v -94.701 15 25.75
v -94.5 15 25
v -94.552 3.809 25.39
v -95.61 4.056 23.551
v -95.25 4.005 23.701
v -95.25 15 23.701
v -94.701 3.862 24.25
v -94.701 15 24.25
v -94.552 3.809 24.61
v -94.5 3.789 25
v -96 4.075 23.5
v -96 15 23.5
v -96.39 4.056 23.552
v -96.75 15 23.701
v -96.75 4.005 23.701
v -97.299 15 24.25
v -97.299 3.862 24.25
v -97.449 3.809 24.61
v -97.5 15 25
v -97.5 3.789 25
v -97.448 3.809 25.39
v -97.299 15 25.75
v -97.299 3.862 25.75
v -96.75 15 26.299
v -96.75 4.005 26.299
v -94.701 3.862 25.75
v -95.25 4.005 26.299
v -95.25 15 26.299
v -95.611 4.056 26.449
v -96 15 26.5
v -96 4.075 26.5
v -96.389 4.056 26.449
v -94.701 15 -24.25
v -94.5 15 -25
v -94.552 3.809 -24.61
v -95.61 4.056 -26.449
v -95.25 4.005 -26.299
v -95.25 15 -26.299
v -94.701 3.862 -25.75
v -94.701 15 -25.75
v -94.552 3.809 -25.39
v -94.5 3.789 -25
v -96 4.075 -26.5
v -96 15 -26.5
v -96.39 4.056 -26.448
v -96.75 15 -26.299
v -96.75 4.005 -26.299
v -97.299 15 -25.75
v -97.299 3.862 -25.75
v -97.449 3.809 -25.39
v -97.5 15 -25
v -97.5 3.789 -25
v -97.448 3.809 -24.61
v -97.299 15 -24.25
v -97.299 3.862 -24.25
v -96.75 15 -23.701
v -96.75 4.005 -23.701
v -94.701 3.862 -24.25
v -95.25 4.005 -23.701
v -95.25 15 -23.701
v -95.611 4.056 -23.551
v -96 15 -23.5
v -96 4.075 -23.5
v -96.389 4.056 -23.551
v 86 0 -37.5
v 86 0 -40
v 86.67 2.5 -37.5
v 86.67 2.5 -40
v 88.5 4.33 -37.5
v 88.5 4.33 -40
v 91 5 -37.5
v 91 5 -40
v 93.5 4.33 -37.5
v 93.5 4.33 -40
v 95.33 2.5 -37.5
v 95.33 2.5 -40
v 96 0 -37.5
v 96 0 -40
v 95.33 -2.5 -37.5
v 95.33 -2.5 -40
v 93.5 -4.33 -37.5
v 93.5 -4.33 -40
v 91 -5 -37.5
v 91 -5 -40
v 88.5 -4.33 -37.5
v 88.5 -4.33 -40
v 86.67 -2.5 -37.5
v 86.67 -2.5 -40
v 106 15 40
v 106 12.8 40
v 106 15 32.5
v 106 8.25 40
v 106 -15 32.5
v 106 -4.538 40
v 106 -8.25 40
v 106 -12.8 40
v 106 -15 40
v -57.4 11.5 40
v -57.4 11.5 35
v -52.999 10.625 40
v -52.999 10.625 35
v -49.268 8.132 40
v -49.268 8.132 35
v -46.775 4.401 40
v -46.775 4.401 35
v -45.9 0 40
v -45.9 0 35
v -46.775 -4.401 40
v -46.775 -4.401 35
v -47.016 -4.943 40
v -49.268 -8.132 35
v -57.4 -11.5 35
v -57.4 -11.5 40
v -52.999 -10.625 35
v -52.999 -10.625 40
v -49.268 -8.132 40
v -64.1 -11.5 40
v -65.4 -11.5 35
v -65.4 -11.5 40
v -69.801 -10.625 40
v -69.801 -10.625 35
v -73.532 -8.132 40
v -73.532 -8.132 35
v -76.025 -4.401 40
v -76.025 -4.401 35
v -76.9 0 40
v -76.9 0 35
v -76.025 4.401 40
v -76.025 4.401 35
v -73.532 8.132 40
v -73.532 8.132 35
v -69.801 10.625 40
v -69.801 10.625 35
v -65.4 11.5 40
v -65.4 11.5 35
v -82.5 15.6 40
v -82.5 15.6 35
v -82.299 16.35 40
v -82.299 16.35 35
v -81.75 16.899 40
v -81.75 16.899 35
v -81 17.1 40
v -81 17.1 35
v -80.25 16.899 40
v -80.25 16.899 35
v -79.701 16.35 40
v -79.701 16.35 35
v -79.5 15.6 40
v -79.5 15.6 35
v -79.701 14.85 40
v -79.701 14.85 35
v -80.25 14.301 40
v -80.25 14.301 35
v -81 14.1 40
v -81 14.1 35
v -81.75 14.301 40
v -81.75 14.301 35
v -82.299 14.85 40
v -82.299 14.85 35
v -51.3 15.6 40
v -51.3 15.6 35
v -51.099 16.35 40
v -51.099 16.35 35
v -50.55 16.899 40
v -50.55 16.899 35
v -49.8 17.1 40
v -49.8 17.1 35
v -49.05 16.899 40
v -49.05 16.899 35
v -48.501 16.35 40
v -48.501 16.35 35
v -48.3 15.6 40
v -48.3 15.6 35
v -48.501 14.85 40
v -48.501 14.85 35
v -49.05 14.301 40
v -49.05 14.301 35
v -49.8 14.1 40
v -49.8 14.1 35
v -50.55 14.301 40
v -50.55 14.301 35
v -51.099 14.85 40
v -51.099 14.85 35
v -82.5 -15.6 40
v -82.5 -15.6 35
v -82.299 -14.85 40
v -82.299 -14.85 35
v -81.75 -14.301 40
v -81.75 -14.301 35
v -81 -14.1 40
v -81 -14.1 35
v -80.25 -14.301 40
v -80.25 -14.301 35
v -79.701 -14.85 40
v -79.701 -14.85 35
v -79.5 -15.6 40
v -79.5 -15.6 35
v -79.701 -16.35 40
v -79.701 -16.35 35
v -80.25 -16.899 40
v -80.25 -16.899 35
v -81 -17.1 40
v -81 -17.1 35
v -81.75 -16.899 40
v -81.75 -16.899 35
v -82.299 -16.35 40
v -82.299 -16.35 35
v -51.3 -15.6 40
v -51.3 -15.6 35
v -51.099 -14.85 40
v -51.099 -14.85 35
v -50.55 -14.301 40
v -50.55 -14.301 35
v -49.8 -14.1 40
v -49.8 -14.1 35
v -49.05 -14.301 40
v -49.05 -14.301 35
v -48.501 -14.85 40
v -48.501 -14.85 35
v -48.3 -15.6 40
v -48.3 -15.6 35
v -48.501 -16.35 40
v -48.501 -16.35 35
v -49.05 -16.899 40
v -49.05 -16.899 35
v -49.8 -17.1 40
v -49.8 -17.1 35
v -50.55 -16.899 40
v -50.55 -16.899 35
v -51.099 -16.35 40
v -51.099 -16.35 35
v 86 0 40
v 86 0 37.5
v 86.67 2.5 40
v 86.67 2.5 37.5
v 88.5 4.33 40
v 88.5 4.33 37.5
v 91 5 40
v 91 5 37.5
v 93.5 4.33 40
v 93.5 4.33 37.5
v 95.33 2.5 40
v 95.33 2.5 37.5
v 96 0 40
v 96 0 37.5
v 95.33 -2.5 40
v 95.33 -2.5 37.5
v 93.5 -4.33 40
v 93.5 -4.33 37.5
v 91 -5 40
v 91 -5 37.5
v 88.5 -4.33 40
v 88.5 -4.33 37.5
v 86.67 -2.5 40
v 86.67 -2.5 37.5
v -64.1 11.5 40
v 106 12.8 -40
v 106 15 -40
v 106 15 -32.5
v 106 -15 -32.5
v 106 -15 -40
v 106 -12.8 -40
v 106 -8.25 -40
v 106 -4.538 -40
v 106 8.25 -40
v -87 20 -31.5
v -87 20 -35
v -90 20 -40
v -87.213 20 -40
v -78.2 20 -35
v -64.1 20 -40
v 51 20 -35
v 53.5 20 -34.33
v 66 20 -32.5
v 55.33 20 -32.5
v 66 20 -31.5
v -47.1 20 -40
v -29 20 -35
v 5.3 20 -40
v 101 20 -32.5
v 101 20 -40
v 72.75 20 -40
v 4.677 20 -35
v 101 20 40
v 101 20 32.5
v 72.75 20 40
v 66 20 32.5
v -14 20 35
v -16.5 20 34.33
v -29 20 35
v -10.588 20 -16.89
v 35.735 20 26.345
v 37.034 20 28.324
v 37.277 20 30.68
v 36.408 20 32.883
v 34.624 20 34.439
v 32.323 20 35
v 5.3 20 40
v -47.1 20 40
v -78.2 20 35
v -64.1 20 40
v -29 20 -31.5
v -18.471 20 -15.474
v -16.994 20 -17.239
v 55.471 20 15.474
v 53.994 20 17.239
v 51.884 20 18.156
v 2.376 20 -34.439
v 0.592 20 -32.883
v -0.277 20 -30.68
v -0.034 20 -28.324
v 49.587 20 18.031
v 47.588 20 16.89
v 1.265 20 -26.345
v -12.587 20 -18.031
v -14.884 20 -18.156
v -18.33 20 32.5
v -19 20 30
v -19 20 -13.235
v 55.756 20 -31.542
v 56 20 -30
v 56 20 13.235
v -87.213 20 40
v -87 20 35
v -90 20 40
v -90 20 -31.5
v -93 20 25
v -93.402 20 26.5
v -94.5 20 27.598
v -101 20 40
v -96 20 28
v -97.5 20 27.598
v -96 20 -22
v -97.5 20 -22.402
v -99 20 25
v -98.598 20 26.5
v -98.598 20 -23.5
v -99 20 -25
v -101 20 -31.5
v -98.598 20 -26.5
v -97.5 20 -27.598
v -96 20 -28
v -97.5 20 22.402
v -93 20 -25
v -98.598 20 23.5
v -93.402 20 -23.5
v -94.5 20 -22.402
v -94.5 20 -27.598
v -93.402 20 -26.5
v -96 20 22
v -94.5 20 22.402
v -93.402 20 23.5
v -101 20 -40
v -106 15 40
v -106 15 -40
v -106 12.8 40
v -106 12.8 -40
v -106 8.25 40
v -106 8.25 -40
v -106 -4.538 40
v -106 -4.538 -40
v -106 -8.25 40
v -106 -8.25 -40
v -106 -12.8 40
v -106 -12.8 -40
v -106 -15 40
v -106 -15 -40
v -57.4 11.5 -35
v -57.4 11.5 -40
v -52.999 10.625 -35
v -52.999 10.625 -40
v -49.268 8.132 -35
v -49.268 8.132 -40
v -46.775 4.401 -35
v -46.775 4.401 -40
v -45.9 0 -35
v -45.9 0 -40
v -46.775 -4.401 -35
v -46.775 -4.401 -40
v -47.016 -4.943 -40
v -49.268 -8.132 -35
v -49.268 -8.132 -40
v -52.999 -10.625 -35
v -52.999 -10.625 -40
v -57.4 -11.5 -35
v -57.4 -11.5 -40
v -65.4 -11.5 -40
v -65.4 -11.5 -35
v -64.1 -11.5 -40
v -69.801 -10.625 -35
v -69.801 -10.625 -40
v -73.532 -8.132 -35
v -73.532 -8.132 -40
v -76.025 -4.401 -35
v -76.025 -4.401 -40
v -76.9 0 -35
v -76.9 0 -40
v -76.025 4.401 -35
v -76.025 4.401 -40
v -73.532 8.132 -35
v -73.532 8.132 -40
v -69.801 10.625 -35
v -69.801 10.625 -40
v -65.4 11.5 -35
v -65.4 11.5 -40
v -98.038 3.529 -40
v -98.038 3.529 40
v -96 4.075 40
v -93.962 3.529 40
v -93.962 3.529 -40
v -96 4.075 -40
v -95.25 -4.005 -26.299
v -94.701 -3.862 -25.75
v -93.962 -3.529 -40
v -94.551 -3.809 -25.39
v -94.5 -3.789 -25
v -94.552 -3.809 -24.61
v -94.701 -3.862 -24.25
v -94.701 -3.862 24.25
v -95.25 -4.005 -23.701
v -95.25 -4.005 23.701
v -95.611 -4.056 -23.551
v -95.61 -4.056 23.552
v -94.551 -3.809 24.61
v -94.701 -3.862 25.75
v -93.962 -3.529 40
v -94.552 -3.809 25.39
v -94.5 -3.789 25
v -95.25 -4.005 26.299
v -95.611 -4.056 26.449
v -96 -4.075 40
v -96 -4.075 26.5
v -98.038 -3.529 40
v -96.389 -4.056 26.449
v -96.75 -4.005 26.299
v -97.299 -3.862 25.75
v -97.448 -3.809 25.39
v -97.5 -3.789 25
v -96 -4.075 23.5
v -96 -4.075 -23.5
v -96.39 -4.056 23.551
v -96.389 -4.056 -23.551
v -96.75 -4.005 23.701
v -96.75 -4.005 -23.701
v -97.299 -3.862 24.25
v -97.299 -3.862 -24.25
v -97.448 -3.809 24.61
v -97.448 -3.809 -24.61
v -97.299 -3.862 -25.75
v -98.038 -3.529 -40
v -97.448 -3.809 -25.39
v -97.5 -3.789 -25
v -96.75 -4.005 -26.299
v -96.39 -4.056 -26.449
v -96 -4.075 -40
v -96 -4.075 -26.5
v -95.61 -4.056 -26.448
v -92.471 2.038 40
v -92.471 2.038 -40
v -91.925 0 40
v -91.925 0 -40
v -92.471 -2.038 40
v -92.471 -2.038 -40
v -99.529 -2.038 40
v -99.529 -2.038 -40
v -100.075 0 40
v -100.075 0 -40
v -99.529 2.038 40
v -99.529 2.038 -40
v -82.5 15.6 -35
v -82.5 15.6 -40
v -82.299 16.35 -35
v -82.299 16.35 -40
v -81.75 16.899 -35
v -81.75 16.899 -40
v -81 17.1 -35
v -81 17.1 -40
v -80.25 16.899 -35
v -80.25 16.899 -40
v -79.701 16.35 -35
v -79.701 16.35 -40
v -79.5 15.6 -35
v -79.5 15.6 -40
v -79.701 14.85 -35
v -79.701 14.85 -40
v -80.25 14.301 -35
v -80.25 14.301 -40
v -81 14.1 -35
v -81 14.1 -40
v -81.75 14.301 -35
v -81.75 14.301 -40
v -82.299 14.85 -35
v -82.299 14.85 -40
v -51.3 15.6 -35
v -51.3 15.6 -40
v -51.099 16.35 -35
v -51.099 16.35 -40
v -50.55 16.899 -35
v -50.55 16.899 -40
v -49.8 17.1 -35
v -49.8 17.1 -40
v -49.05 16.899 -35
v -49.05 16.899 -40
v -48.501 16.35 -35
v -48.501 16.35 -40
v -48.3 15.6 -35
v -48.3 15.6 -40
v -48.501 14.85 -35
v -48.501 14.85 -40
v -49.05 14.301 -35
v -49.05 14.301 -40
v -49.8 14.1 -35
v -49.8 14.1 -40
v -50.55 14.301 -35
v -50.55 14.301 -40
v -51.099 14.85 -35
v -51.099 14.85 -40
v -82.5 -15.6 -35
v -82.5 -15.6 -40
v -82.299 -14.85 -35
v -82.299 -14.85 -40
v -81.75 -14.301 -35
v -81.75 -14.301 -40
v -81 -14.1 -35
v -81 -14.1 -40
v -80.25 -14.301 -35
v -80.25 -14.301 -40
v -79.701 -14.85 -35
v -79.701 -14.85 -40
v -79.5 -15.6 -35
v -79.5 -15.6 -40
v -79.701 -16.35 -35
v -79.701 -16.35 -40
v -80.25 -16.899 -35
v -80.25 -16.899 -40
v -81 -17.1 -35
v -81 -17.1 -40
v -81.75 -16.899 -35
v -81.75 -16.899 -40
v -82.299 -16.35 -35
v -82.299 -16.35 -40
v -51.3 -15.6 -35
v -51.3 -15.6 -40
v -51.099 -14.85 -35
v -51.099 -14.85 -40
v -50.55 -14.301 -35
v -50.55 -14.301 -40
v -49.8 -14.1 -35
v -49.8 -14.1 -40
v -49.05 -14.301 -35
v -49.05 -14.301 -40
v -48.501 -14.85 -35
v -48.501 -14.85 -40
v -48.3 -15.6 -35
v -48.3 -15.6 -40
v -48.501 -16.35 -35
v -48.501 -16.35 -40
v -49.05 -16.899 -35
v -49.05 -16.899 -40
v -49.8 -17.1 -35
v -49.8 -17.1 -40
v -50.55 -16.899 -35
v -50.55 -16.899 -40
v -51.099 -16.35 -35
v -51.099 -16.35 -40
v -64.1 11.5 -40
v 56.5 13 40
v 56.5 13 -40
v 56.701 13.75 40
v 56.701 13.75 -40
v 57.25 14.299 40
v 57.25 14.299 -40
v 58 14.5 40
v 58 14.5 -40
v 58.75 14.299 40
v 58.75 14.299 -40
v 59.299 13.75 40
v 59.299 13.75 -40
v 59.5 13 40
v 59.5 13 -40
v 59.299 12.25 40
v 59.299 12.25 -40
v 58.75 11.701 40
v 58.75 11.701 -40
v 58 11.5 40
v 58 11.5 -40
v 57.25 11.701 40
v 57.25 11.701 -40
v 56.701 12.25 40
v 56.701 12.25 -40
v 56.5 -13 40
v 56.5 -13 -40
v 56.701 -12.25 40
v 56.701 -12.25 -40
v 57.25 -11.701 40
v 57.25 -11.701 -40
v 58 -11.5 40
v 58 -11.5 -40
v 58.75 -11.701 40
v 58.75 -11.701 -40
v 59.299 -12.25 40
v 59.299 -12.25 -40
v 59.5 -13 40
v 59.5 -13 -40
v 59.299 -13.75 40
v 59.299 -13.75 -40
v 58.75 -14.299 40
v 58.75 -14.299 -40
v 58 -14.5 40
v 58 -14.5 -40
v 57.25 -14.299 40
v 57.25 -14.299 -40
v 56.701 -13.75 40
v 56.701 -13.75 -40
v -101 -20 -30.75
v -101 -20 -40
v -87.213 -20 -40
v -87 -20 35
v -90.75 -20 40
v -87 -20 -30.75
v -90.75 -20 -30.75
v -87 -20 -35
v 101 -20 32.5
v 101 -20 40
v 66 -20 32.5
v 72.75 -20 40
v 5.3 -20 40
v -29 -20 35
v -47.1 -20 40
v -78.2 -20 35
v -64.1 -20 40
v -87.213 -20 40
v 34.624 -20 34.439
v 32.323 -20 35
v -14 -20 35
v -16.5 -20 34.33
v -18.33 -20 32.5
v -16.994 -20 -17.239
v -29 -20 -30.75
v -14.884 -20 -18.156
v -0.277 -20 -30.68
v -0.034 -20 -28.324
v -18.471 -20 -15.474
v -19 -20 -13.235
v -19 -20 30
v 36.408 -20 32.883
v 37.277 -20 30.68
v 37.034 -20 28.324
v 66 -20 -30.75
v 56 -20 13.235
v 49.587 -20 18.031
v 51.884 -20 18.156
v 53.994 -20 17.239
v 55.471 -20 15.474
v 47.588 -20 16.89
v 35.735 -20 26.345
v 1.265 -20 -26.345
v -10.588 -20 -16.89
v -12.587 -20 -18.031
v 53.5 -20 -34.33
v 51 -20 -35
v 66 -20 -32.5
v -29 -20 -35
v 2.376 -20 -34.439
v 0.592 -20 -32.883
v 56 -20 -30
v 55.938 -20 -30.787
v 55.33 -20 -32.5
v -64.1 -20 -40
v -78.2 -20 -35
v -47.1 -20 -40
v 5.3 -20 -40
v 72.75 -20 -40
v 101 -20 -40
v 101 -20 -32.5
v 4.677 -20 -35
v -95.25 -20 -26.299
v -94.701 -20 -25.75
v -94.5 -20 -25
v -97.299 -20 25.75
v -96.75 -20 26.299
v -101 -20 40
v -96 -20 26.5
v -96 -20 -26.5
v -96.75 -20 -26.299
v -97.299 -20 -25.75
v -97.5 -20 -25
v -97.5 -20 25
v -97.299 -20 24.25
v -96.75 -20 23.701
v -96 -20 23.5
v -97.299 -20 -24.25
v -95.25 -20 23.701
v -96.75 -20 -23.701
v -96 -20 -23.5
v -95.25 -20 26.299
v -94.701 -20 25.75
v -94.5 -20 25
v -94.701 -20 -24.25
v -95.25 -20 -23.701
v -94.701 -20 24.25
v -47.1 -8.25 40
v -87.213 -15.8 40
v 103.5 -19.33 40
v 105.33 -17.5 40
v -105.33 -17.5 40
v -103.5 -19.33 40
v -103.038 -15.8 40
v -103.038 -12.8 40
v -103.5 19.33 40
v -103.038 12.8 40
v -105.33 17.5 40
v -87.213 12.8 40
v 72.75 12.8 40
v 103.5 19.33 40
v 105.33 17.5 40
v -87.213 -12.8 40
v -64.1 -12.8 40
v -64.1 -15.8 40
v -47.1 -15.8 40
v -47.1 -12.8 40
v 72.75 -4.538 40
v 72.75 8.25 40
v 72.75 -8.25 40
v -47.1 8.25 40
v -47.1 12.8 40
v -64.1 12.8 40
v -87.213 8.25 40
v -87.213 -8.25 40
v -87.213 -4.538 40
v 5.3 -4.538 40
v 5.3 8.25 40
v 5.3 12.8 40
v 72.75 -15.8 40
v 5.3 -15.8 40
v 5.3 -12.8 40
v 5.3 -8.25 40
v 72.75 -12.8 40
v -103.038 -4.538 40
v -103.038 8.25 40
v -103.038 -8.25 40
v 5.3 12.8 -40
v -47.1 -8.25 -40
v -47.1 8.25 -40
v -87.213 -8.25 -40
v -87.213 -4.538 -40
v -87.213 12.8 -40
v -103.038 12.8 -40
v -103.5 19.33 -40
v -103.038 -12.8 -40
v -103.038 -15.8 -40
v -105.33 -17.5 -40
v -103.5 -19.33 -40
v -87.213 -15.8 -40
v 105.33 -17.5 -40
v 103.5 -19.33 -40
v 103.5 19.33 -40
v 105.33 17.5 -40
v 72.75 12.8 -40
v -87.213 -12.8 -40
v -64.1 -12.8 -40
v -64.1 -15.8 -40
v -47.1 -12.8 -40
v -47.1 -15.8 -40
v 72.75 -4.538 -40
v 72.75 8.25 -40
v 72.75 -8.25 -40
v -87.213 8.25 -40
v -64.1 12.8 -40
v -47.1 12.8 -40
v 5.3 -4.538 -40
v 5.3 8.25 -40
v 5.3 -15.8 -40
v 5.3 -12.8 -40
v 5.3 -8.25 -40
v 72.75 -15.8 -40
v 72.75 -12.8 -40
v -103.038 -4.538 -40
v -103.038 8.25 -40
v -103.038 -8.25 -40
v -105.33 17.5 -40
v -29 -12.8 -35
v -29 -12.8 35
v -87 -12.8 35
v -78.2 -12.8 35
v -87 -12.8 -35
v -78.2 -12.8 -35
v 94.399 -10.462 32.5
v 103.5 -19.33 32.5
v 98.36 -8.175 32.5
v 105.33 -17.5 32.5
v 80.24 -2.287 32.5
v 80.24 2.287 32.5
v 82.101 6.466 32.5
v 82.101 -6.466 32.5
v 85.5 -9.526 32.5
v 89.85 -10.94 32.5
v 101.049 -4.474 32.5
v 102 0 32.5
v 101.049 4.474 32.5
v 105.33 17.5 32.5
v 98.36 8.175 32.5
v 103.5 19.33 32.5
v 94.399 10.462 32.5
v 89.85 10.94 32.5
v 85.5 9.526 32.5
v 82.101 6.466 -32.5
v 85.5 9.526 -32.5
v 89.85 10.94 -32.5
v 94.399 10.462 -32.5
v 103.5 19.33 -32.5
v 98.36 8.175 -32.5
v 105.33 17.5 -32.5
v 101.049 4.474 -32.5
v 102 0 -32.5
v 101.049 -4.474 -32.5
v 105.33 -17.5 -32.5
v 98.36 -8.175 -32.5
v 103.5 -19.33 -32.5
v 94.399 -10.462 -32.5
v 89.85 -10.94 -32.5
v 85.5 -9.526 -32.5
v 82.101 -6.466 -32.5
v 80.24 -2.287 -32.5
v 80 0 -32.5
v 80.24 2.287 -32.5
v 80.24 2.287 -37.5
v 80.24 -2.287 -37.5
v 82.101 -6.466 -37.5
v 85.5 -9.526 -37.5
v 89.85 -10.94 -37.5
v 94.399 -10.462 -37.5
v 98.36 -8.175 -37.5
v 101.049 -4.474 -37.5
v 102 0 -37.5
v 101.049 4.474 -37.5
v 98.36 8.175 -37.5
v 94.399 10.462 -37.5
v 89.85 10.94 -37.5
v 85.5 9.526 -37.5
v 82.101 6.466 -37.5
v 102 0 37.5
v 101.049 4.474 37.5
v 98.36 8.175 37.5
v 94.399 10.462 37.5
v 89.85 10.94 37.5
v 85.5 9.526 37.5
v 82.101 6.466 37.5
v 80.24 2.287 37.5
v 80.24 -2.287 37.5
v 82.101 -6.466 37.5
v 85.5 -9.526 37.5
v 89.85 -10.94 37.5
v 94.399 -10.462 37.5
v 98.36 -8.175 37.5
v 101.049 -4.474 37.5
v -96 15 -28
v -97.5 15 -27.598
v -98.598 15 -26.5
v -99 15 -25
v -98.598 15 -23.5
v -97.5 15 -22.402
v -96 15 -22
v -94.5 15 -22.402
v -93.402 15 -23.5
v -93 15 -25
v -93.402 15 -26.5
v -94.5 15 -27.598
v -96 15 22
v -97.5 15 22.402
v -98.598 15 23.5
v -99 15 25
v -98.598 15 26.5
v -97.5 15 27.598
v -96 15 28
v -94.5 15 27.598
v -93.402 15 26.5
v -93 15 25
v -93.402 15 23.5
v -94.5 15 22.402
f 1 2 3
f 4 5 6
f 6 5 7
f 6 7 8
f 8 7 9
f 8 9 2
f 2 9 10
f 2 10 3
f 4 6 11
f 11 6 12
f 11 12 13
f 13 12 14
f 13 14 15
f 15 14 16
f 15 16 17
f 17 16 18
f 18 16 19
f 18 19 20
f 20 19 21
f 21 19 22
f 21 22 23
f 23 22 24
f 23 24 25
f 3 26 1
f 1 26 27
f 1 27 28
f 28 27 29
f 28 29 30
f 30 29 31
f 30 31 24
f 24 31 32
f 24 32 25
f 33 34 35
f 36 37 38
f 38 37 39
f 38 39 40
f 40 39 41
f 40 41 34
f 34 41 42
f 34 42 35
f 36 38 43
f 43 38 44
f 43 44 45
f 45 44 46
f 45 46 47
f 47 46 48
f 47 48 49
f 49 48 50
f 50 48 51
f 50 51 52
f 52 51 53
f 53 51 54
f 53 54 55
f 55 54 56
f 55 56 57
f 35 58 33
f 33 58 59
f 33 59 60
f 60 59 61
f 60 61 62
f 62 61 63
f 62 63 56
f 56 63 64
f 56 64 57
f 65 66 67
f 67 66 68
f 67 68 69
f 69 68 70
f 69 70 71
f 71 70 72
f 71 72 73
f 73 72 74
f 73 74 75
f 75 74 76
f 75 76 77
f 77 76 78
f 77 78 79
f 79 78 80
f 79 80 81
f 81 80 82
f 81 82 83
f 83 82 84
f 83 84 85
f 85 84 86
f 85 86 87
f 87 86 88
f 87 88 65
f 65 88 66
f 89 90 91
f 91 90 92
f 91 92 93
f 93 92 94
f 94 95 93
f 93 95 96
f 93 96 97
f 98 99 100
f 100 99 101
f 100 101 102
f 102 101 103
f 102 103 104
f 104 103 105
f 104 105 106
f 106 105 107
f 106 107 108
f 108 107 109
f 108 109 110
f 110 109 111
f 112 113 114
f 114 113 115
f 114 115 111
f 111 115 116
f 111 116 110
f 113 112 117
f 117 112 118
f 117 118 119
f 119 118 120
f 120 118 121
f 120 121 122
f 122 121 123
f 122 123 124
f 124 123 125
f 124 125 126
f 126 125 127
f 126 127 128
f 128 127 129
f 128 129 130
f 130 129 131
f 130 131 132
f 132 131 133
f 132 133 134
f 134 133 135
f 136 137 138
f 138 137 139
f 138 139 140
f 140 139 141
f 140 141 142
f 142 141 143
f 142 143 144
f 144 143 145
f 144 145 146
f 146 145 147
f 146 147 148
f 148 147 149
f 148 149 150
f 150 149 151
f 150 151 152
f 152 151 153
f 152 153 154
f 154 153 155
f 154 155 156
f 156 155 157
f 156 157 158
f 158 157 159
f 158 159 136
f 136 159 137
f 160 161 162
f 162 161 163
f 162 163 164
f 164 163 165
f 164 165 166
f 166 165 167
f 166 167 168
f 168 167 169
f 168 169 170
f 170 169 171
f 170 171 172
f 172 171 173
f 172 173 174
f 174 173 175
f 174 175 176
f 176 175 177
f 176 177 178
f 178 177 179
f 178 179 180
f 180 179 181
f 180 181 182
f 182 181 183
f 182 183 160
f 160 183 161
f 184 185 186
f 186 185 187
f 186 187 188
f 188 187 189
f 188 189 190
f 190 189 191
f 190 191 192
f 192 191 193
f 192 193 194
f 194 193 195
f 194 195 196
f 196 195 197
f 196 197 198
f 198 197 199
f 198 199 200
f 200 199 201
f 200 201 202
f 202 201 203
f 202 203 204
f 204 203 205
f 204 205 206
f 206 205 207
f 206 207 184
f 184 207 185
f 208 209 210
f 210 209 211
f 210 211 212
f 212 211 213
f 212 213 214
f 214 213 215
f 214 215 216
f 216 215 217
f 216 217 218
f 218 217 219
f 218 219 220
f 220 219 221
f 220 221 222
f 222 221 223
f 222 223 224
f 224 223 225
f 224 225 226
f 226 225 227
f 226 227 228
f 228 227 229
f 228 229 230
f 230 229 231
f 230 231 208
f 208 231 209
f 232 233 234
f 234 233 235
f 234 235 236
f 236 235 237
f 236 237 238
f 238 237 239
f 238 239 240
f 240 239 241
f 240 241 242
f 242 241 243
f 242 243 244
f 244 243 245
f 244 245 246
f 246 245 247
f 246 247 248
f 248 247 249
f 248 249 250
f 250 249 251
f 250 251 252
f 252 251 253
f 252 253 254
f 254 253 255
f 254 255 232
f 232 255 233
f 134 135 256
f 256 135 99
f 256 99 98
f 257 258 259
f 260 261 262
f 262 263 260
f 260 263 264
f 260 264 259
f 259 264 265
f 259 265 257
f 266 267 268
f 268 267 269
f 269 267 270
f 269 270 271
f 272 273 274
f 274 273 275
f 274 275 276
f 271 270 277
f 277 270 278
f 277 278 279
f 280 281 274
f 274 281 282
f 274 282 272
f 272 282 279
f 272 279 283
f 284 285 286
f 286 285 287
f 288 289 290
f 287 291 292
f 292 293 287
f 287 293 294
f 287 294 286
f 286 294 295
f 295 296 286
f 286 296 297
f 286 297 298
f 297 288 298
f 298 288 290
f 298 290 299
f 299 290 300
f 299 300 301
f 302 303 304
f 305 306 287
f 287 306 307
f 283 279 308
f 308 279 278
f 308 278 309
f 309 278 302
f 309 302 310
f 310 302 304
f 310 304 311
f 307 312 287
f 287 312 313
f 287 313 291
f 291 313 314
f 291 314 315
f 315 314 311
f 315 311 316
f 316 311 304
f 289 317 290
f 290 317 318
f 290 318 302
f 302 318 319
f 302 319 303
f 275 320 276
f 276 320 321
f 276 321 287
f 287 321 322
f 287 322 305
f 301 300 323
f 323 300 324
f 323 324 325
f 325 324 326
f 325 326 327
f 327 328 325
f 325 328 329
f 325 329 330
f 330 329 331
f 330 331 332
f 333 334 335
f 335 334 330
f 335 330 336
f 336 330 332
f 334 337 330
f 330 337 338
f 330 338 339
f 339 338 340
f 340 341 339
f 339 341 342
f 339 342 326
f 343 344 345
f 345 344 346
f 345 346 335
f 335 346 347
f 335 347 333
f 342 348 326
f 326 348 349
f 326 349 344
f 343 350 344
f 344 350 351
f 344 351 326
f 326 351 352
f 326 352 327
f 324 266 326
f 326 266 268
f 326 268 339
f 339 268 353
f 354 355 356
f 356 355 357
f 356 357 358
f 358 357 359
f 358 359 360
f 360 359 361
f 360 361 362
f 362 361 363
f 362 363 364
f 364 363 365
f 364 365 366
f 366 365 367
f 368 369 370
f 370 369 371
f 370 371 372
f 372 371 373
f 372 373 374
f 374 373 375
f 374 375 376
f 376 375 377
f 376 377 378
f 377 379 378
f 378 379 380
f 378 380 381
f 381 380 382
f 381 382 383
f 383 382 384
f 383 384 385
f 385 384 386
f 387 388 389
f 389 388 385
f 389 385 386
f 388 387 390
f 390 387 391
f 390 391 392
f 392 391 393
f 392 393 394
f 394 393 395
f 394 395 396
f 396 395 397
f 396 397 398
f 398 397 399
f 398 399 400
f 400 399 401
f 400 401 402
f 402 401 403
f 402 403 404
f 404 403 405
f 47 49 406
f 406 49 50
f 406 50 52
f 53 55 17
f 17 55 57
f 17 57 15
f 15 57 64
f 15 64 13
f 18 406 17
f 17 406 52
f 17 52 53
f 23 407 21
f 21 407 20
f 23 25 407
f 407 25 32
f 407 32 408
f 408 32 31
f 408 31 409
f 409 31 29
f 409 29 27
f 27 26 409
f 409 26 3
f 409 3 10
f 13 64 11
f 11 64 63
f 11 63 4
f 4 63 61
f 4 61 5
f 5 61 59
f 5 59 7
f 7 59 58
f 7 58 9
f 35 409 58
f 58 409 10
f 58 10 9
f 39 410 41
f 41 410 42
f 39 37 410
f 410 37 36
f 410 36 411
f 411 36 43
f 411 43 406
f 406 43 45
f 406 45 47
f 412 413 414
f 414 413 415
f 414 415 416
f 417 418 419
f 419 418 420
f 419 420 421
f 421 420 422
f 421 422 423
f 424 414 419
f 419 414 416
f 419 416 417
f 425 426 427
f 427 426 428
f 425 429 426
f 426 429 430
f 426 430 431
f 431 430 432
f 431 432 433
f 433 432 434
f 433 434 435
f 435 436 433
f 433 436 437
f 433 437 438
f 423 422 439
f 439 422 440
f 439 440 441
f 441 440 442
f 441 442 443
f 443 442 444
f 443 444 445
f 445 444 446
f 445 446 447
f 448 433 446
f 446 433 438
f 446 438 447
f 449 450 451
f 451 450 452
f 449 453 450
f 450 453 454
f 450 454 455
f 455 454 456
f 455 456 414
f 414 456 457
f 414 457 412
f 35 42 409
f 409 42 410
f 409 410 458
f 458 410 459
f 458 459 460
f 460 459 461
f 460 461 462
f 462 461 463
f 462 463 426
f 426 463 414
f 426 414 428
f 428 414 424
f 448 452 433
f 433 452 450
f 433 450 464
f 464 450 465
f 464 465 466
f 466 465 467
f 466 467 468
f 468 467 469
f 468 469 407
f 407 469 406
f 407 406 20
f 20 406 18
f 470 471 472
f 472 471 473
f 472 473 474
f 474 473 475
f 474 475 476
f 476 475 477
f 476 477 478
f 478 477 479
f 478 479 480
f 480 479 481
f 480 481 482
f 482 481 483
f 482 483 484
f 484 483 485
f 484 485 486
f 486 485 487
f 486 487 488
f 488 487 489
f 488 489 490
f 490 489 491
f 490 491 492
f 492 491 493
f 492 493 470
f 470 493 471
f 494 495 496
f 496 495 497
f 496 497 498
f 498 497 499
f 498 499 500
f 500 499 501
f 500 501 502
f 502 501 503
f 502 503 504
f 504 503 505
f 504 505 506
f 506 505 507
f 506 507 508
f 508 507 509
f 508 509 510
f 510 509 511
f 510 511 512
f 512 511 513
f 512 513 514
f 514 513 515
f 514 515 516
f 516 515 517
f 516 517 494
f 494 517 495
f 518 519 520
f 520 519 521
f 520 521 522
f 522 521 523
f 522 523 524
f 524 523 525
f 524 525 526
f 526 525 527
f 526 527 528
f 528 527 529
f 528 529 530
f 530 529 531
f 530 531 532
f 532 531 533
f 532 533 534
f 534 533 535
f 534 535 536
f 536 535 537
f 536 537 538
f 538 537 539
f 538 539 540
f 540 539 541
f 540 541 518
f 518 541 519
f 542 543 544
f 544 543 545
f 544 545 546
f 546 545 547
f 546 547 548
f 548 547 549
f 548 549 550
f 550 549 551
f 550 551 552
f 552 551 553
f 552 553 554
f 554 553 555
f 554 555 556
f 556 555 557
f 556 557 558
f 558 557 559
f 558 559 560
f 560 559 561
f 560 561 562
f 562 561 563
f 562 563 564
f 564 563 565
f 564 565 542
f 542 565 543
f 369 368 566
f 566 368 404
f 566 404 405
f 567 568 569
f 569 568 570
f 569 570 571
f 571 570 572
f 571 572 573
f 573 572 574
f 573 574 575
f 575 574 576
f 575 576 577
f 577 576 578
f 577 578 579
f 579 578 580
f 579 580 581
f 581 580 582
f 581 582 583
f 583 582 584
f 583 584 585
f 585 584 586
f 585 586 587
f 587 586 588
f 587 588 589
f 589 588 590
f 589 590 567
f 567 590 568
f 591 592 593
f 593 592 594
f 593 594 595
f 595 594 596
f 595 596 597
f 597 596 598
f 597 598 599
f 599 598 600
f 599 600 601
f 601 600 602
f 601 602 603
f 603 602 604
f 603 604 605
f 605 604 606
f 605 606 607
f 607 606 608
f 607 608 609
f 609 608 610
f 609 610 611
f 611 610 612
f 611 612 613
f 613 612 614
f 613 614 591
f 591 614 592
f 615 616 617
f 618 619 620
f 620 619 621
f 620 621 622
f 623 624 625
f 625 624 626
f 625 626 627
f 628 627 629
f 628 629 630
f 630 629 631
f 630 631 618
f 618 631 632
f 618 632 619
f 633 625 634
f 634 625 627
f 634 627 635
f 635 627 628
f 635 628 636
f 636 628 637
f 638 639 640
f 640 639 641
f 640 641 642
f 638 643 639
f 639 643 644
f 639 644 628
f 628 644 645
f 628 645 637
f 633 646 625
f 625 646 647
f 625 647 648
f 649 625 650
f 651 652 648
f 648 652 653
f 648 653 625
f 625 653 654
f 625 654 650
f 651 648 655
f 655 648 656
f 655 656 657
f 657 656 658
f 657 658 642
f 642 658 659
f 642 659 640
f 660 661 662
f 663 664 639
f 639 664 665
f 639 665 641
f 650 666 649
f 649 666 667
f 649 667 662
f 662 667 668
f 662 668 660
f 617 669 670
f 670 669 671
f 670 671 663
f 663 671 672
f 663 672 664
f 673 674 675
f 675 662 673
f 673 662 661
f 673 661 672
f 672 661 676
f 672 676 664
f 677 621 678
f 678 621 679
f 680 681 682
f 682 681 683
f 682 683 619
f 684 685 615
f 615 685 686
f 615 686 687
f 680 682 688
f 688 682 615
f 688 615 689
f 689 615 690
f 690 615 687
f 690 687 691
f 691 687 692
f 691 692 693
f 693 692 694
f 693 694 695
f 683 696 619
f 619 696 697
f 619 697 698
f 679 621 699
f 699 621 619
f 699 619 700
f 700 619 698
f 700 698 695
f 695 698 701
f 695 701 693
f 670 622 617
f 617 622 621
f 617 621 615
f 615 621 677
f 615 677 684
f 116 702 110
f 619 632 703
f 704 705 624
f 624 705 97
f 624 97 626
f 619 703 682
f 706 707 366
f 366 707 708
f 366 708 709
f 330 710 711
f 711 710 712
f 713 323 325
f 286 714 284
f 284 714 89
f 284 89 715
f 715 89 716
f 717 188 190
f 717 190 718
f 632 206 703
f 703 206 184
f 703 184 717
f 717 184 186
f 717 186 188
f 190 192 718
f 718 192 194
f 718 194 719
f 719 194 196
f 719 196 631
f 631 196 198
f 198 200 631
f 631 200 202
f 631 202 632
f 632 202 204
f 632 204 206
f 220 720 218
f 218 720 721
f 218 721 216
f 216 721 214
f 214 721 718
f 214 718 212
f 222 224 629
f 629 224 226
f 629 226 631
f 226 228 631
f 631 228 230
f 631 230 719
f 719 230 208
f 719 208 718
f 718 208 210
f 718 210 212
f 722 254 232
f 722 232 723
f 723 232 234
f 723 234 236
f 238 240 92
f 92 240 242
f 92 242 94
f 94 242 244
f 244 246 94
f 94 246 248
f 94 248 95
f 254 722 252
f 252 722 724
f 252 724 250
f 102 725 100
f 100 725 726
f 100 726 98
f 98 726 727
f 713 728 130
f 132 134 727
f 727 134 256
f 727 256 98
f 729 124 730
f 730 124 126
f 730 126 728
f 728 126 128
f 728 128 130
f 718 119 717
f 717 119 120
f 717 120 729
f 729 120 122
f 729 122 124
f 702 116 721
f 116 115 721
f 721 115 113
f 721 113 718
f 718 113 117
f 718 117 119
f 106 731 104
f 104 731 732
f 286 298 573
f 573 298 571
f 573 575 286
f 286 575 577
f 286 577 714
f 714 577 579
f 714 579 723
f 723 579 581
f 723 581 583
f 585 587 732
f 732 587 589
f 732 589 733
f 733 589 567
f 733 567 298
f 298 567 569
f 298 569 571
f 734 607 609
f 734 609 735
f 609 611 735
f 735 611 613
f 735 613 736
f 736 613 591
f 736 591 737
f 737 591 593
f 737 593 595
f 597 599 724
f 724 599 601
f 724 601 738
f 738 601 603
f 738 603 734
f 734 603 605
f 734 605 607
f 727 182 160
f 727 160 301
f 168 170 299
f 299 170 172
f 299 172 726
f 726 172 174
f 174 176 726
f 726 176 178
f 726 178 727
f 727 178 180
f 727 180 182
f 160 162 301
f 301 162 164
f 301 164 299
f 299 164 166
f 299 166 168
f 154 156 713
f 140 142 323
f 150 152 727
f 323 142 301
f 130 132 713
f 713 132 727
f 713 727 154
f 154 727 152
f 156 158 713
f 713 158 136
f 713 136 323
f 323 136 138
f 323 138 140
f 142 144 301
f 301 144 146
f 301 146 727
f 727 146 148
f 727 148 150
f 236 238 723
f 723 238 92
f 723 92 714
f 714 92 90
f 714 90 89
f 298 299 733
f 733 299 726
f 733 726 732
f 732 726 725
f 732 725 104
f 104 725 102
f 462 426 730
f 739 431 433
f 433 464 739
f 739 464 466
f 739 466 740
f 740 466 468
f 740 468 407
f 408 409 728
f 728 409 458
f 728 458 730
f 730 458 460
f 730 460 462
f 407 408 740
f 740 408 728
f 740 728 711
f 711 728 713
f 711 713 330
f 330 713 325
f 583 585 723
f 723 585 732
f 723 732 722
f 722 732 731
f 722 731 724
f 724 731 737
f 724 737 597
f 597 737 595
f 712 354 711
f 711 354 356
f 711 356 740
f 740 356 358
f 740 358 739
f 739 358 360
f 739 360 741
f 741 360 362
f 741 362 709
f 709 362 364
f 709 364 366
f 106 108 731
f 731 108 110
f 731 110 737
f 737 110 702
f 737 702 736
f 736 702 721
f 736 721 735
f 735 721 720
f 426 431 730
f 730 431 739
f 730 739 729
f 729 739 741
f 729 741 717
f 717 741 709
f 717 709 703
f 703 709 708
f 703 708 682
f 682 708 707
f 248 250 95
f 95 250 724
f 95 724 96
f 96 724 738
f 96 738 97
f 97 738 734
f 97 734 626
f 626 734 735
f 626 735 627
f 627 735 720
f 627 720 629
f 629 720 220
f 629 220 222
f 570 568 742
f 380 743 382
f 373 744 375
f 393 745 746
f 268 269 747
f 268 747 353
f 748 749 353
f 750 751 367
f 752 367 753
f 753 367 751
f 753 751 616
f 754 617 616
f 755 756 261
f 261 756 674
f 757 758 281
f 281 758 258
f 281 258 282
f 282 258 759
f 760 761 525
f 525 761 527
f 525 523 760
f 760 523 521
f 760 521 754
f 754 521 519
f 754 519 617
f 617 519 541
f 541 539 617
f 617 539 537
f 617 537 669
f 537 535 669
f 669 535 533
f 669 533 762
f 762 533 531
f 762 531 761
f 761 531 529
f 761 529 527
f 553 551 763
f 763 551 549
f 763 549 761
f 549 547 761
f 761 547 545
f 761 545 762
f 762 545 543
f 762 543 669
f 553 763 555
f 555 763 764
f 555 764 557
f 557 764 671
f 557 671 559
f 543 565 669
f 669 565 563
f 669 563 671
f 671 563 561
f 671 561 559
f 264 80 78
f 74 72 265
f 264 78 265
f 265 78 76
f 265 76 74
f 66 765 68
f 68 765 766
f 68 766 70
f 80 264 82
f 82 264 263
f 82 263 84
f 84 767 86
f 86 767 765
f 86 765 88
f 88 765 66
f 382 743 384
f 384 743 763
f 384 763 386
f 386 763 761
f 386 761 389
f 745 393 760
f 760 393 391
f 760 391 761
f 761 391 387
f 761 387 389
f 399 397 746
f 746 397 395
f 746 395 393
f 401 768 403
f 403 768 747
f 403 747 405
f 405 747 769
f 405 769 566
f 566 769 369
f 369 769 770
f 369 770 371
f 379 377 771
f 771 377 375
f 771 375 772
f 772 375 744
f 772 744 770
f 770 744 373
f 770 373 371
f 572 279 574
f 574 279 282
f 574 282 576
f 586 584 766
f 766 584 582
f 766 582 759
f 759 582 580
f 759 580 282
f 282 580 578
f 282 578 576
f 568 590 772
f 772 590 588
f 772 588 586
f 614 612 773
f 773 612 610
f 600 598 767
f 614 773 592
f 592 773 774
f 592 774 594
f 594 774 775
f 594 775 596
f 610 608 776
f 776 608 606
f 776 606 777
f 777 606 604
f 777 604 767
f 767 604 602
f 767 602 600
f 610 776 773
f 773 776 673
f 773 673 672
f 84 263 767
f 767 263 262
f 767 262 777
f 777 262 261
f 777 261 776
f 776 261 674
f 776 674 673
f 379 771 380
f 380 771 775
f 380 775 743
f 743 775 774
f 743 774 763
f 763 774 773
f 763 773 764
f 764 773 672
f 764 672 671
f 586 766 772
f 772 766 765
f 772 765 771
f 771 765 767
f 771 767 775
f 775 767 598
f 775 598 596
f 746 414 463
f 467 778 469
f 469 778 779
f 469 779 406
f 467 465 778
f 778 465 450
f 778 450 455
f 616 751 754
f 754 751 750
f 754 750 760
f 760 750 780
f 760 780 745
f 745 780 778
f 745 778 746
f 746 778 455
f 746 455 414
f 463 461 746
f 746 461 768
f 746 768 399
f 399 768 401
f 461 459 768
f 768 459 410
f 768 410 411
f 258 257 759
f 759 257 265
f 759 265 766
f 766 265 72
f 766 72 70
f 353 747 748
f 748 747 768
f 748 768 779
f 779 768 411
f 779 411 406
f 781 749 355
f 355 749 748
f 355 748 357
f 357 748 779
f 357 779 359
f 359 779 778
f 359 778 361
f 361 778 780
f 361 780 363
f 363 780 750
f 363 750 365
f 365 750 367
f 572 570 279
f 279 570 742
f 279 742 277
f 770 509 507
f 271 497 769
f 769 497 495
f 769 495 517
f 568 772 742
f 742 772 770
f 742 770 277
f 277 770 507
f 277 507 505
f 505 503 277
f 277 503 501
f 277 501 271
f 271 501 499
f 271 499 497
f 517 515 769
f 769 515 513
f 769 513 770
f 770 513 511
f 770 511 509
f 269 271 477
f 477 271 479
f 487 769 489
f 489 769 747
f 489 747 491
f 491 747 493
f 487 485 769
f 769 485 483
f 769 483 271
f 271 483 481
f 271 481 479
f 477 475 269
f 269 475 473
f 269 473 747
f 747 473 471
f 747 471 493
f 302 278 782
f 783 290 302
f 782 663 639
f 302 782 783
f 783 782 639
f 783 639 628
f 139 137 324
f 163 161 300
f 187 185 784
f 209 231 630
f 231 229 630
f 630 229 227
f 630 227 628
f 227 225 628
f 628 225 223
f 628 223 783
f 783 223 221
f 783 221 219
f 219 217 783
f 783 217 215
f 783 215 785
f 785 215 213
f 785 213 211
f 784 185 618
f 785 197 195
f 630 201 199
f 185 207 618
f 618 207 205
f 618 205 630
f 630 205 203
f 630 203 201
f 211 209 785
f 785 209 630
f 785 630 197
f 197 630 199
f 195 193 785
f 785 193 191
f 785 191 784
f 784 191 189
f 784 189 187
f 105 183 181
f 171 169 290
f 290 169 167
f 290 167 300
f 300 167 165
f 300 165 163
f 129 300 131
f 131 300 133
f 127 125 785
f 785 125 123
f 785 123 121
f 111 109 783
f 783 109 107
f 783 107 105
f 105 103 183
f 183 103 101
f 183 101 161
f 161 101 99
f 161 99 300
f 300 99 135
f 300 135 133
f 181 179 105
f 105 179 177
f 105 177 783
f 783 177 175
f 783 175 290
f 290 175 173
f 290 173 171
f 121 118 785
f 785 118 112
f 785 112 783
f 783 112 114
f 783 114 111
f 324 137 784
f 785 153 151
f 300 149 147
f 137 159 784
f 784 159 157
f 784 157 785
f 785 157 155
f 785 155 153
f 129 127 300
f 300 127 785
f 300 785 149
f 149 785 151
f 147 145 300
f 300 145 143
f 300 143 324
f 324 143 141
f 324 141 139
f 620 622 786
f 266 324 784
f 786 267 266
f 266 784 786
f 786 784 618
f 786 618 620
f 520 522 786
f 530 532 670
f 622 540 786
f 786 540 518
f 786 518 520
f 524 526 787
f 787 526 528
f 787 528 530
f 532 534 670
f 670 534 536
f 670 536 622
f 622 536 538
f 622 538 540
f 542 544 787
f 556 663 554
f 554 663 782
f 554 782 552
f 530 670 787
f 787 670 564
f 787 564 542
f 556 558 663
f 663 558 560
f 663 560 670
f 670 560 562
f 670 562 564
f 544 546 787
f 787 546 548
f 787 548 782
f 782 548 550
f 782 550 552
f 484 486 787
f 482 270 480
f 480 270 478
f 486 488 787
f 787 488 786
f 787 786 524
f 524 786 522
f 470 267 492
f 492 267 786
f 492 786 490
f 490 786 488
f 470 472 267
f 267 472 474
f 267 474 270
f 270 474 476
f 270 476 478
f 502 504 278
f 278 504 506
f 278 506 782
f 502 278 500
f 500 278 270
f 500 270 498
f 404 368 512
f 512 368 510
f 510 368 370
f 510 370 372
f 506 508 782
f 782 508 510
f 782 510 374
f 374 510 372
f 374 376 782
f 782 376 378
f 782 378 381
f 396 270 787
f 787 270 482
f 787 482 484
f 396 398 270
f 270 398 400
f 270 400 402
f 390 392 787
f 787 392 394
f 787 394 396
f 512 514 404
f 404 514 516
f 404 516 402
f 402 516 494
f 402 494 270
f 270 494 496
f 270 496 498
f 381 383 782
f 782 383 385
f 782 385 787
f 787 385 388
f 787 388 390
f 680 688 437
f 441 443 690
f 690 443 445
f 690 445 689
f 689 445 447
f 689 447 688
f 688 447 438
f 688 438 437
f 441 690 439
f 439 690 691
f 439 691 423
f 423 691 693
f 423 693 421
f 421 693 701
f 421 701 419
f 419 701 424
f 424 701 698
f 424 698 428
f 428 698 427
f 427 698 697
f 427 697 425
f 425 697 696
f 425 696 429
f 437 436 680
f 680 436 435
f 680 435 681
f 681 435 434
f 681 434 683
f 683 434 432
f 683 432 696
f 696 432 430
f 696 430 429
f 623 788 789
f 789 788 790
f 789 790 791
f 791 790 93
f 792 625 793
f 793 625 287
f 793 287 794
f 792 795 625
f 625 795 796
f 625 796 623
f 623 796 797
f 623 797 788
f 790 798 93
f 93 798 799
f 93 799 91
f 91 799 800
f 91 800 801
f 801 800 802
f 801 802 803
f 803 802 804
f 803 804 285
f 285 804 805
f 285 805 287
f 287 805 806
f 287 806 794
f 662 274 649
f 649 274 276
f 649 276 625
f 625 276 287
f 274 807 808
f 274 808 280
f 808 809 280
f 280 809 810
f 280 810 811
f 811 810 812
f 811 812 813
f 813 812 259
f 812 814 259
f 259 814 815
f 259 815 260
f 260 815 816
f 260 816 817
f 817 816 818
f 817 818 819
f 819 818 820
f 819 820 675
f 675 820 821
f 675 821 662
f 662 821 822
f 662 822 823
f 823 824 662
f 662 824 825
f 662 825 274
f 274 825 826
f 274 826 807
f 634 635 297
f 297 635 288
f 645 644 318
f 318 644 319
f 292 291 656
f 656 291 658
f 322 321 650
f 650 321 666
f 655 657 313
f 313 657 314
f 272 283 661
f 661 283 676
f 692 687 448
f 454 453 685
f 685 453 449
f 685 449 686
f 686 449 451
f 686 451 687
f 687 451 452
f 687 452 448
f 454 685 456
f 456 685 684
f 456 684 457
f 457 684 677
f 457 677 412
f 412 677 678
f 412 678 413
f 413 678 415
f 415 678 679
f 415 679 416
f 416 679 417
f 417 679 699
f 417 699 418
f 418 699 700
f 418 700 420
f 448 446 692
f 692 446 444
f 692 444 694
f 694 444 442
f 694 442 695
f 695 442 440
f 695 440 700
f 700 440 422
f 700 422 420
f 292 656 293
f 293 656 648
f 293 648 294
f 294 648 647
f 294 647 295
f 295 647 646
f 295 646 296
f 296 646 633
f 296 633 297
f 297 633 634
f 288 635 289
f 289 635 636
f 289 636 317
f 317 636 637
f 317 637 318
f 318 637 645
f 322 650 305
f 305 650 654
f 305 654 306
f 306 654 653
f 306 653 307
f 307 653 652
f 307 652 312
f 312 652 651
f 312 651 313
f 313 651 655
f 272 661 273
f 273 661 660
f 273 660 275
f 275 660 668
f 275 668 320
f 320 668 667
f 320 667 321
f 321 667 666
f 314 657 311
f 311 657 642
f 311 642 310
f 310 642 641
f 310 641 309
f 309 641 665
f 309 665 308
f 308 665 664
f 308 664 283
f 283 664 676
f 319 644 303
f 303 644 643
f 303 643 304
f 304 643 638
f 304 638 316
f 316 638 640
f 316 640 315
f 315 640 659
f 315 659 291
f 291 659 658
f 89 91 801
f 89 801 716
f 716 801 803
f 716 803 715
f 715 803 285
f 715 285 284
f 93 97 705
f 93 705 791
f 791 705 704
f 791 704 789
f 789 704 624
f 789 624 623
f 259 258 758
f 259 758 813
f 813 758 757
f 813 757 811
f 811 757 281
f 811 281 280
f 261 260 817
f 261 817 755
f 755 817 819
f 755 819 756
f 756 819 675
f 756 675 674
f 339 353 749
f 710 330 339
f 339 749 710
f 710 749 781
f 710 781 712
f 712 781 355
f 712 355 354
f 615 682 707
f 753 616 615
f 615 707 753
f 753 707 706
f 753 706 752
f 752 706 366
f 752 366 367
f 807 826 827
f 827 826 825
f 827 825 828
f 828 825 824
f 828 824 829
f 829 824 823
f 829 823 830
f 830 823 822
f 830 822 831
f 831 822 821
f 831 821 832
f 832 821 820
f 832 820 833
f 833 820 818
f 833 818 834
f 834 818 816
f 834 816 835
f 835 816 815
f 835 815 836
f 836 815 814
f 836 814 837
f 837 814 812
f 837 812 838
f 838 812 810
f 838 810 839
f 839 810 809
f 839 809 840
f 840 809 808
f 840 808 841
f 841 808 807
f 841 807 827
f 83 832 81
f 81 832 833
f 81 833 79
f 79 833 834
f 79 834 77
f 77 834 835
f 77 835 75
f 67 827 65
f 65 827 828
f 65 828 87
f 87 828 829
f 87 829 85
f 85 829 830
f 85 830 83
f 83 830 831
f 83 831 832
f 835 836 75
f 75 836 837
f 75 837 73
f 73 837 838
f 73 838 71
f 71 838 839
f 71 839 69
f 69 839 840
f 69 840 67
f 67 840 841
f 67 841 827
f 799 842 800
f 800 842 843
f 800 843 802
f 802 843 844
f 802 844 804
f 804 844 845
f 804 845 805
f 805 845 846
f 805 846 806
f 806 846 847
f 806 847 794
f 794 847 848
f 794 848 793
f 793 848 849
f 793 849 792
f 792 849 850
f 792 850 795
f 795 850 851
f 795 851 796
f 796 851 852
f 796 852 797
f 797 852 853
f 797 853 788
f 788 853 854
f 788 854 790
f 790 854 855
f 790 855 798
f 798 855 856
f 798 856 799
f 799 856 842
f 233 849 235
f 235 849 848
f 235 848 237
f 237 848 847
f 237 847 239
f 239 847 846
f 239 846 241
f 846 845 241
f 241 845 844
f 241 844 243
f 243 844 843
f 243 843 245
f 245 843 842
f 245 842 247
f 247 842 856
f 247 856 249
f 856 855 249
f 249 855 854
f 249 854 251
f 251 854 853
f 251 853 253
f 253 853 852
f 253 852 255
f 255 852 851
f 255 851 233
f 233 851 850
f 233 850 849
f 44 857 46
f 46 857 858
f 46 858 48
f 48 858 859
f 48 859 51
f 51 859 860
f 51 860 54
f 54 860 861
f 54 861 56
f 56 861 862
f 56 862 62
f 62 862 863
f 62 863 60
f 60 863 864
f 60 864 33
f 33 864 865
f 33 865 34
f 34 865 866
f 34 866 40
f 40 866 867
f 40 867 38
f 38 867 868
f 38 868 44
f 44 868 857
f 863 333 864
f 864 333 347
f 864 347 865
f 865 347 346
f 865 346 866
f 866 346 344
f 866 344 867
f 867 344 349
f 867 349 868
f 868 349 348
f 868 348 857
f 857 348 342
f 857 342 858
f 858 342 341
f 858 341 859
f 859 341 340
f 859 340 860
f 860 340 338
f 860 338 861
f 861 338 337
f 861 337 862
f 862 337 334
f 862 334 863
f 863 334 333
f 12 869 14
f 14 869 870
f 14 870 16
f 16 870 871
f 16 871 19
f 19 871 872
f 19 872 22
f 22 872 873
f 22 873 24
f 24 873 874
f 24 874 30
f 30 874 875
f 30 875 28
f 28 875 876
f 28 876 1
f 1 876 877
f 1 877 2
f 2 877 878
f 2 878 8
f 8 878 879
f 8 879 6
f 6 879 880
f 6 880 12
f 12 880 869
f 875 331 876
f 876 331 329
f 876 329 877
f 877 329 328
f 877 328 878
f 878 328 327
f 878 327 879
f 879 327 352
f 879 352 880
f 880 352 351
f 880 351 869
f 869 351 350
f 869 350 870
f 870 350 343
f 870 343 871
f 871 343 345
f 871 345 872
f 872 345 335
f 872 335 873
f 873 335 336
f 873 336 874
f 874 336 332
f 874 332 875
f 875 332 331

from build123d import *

# Parameters (mm, degrees)
SKETCH1_W               = 212
SKETCH1_H               = 40
SKETCH1_R               = 4.075
SKETCH1_R_2             = 1.5
SKETCH1_R_3             = 5
BOSS_EXTRUDE1_DEPTH     = 40
CUT_EXTRUDE3_DEPTH      = 116.047816146
CUT_EXTRUDE3_DEPTH_BACK = 116.047816146
SKETCH2_R               = 1.5
SKETCH2_W               = 58
SKETCH2_H               = 70
SKETCH2_W_2             = 40
SKETCH2_H_2             = 65
FILLET1_R               = 5
FILLET2_R               = 5
SKETCH4_R               = 11
CUT_EXTRUDE4_DEPTH      = 37.5
SKETCH5_R               = 3
CUT_EXTRUDE5_DEPTH      = 5


with BuildPart() as part:
    # Sketch1 → Boss-Extrude1 (new, symmetric)
    with BuildSketch(Plane.XY):
        Rectangle(SKETCH1_W, SKETCH1_H)
        with Locations((-96, 0)):
            Circle(SKETCH1_R, mode=Mode.SUBTRACT)
        with Locations((-81, 15.6)):
            Circle(SKETCH1_R_2, mode=Mode.SUBTRACT)
        with Locations((-49.8, 15.6)):
            Circle(SKETCH1_R_2, mode=Mode.SUBTRACT)
        with Locations((-81, -15.6)):
            Circle(SKETCH1_R_2, mode=Mode.SUBTRACT)
        with Locations((-49.8, -15.6)):
            Circle(SKETCH1_R_2, mode=Mode.SUBTRACT)
        with Locations((91, 0)):
            Circle(SKETCH1_R_3, mode=Mode.SUBTRACT)
        with Locations((58, 13)):
            Circle(SKETCH1_R_2, mode=Mode.SUBTRACT)
        with Locations((58, -13)):
            Circle(SKETCH1_R_2, mode=Mode.SUBTRACT)
        with BuildLine():
            Line((-65.4, 11.5), (-57.4, 11.5))
            ThreePointArc((-57.4, 11.5), (-45.9, 0), (-57.4, -11.5))
            Line((-57.4, -11.5), (-65.4, -11.5))
            ThreePointArc((-65.4, -11.5), (-76.9, 0), (-65.4, 11.5))
        make_face(mode=Mode.SUBTRACT)
    extrude(amount=BOSS_EXTRUDE1_DEPTH, both=True)

    # Sketch2 → Cut-Extrude3 (cut, two sides: drawn at the far end of the back side and taken through both)
    with BuildSketch(Plane(origin=(0, 0, 0), x_dir=(1, 0, 0), z_dir=(0, 1, 0)).offset(-CUT_EXTRUDE3_DEPTH_BACK)):
        with Locations(Location((-96, 25, 0), (0, 0, 270))):
            Circle(SKETCH2_R)
        with Locations(Location((-96, -25, 0), (0, 0, 270))):
            Circle(SKETCH2_R)
        with Locations((-58, 0)):
            Rectangle(SKETCH2_W, SKETCH2_H)
        Polygon((-19, 24.740857736), (45.00806186, -35), (-19, -35), align=None)
        with Locations((86, 0)):
            Rectangle(SKETCH2_W_2, SKETCH2_H_2)
        Polygon((-8.00806186, 35), (56, -24.740857736), (56, 35), align=None)
    extrude(amount=CUT_EXTRUDE3_DEPTH + CUT_EXTRUDE3_DEPTH_BACK, mode=Mode.SUBTRACT)

    # Fillet1
    fillet1_edges = [part.edges().sort_by_distance(p)[0] for p in [
        (56, 0, -35),
        (56, 0, 24.740857736),
        (-8.00806186, 0, -35),
        (45.00806186, 0, 35),
        (-19, 0, 35),
        (-19, 0, -24.740857736),
    ]]
    fillet(fillet1_edges, radius=FILLET1_R)

    # Fillet2
    fillet2_edges = [part.edges().sort_by_distance(p)[0] for p in [
        (106, -20, 36.25),
        (-106, -20, 0),
        (-106, 20, 0),
        (106, 20, 36.25),
        (106, -20, -36.25),
        (106, 20, -36.25),
    ]]
    fillet(fillet2_edges, radius=FILLET2_R)

    # Sketch4 → Cut-Extrude4 (cut, symmetric)
    with BuildSketch(Plane.XY):
        with Locations((91, 0)):
            Circle(SKETCH4_R)
    extrude(amount=CUT_EXTRUDE4_DEPTH, both=True, mode=Mode.SUBTRACT)

    # Sketch5 → Cut-Extrude5 (cut)
    with BuildSketch(Plane(origin=(0, 20, 0), x_dir=(1, 0, 0), z_dir=(0, 1, 0))):
        with Locations(Location((-96, 25, 0), (0, 0, 270))):
            Circle(SKETCH5_R)
        with Locations(Location((-96, -25, 0), (0, 0, 270))):
            Circle(SKETCH5_R)
    extrude(amount=-CUT_EXTRUDE5_DEPTH, mode=Mode.SUBTRACT)


solid = part.part
